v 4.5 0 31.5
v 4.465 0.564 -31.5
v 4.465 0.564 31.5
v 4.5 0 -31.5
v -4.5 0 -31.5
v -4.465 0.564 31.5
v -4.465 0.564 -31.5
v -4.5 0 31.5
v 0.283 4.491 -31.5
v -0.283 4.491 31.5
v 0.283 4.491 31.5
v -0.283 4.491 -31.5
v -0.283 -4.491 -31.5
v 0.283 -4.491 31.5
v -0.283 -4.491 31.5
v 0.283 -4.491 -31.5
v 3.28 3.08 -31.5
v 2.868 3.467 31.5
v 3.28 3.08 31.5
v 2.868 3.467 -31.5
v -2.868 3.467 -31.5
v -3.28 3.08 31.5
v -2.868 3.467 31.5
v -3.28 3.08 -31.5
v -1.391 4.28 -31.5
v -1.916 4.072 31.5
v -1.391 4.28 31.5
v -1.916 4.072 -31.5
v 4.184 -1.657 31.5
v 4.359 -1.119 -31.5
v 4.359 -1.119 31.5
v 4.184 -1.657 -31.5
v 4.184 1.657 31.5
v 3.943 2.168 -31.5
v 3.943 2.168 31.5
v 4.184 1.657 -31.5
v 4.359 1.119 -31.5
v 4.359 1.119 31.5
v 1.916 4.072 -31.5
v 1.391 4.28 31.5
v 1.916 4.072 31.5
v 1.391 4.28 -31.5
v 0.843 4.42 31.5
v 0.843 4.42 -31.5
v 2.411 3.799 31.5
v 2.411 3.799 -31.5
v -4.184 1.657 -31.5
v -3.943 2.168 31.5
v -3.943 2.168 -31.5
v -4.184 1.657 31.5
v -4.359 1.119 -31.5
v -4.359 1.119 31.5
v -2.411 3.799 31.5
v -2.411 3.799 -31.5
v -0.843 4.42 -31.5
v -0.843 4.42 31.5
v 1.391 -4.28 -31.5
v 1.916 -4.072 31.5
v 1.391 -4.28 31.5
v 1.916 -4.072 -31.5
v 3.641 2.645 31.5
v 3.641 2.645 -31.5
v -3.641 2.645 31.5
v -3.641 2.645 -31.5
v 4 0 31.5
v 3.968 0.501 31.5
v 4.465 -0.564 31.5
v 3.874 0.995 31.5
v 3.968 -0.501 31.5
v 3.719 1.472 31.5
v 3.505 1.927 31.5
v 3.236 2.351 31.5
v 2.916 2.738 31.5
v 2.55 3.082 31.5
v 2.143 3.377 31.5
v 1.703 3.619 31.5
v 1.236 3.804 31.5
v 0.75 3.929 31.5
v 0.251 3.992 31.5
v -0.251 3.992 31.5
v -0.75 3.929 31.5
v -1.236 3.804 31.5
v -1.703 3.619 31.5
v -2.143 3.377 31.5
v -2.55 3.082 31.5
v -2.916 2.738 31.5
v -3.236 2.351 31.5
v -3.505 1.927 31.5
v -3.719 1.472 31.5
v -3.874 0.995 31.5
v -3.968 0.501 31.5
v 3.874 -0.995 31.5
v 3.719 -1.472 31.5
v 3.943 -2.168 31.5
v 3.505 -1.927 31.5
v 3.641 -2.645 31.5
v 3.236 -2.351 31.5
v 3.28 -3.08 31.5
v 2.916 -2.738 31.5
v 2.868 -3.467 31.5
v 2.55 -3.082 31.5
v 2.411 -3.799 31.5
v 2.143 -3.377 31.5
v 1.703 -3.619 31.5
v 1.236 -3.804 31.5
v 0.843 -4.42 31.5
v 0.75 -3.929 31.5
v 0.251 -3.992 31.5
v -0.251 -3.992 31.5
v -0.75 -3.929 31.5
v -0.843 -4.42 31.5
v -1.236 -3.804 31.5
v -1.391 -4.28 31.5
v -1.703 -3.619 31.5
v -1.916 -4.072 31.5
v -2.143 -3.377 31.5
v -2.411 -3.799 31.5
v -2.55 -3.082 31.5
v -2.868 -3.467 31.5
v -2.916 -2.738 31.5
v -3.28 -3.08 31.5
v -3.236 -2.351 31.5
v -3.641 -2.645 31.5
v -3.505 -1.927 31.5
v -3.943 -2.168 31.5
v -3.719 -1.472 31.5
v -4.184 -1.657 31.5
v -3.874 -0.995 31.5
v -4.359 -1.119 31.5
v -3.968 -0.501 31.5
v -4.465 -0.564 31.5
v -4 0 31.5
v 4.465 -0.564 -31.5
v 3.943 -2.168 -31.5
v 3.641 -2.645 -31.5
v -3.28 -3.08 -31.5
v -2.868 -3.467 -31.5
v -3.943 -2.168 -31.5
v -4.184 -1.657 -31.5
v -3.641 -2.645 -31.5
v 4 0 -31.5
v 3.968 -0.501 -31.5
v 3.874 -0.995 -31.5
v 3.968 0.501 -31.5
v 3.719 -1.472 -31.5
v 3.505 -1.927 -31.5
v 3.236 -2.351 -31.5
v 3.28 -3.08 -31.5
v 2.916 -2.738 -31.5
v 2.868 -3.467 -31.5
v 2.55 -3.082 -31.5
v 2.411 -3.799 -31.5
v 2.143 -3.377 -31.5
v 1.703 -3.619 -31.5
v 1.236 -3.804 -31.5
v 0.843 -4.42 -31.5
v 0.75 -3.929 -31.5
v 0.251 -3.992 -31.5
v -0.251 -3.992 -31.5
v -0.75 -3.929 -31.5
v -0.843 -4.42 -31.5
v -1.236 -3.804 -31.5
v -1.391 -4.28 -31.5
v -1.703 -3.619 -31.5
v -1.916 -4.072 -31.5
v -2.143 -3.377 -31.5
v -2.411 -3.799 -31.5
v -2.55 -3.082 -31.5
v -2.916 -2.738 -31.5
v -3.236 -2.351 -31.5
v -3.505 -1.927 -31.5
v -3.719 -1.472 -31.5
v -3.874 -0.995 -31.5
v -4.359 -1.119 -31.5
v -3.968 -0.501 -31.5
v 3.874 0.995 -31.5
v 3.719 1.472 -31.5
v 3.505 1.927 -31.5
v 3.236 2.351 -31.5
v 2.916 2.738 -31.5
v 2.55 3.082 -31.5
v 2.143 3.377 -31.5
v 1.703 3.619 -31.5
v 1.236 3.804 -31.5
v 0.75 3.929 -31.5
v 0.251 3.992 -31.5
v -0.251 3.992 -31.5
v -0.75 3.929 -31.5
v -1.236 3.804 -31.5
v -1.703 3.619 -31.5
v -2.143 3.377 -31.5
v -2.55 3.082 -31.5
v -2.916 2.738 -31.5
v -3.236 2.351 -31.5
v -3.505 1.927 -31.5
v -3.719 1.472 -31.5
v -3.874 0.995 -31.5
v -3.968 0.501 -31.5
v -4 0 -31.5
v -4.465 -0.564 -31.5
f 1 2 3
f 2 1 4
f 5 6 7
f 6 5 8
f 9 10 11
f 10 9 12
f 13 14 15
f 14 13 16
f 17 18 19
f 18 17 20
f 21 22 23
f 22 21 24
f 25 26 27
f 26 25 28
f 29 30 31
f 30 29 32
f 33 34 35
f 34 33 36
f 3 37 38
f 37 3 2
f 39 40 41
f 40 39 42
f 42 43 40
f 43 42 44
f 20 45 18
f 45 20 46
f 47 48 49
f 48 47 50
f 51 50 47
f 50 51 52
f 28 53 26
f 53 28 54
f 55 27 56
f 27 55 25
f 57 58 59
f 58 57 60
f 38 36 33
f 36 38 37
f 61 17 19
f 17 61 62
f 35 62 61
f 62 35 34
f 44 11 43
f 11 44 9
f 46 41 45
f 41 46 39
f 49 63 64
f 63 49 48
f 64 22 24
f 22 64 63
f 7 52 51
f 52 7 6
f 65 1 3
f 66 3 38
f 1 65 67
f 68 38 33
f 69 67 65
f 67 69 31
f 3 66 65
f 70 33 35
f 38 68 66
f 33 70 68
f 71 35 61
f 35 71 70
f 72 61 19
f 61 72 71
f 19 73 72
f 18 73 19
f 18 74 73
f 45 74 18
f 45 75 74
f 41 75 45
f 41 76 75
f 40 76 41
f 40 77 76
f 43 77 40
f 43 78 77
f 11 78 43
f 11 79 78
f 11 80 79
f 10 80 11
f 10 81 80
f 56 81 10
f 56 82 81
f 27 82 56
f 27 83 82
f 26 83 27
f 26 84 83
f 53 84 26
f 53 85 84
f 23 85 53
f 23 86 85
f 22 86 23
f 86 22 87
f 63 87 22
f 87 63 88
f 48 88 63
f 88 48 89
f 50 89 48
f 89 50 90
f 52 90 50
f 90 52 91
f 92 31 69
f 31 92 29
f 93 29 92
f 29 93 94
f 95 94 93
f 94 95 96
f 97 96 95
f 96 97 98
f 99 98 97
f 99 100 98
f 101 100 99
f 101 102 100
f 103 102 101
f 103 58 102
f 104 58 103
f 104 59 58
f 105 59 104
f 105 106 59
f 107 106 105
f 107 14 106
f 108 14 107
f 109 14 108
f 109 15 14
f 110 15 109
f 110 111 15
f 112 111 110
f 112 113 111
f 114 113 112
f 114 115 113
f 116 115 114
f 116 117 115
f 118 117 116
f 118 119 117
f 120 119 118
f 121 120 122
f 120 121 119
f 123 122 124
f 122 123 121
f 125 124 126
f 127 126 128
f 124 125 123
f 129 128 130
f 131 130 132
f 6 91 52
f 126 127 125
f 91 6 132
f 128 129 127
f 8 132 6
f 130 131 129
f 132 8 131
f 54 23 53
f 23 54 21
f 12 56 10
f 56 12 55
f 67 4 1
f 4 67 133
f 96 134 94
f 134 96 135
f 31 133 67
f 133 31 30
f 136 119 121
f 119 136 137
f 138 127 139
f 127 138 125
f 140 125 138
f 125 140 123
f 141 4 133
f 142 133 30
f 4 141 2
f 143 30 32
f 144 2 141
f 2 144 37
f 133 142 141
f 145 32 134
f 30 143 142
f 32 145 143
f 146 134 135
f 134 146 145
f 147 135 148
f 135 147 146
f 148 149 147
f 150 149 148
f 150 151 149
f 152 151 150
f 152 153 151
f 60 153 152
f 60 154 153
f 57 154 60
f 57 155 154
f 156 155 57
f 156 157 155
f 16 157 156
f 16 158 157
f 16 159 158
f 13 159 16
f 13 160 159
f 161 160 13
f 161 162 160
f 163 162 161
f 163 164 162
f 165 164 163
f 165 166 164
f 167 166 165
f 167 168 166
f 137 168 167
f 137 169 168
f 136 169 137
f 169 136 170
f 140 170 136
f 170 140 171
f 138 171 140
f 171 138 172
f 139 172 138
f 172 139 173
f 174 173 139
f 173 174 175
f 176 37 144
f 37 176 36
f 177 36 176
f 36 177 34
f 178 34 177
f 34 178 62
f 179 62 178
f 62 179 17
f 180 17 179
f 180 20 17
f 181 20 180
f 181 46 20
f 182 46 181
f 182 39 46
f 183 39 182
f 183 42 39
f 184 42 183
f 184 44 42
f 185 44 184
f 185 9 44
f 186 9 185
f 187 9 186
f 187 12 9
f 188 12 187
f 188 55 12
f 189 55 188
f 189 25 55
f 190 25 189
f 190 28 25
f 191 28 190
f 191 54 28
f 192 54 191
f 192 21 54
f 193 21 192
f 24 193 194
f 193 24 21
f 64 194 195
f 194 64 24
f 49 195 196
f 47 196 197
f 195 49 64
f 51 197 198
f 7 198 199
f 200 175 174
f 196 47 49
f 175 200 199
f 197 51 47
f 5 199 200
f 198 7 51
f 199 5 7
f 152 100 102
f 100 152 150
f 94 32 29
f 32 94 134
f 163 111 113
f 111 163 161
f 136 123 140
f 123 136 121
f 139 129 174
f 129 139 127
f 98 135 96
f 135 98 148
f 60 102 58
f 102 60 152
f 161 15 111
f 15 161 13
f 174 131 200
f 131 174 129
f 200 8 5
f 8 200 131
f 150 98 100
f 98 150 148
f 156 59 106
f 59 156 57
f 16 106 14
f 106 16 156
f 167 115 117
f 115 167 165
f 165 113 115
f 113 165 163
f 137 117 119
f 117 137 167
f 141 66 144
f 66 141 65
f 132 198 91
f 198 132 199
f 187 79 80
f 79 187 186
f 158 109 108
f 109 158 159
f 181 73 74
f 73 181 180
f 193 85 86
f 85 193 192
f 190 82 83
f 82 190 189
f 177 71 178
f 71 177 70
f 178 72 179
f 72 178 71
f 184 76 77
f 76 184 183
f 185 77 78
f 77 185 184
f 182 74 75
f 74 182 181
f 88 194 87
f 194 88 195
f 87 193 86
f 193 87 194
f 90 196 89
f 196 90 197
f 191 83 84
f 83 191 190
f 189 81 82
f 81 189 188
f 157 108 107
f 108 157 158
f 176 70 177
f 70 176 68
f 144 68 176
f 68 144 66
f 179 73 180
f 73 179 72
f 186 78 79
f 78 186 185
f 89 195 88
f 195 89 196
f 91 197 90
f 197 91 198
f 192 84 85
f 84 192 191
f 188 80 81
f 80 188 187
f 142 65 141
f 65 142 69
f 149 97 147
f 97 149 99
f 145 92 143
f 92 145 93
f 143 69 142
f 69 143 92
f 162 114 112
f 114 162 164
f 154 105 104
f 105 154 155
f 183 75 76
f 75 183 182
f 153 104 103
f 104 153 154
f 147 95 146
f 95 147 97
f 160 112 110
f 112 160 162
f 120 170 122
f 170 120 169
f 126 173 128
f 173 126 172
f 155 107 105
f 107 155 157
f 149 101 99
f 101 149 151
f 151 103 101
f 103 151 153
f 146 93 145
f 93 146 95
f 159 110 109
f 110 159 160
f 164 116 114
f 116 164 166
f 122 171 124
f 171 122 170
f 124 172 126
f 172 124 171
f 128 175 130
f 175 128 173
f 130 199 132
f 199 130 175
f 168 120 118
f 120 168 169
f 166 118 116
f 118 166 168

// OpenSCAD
$fn = 50;


difference() {
	union() {
		translate(v = [0, 0, -31.5000000000]) {
			cylinder(h = 63, r = 4.5000000000);
		}
	}
	union() {
		translate(v = [0, 0, -100.0000000000]) {
			cylinder(h = 200, r = 4.0000000000);
		}
	}
}
